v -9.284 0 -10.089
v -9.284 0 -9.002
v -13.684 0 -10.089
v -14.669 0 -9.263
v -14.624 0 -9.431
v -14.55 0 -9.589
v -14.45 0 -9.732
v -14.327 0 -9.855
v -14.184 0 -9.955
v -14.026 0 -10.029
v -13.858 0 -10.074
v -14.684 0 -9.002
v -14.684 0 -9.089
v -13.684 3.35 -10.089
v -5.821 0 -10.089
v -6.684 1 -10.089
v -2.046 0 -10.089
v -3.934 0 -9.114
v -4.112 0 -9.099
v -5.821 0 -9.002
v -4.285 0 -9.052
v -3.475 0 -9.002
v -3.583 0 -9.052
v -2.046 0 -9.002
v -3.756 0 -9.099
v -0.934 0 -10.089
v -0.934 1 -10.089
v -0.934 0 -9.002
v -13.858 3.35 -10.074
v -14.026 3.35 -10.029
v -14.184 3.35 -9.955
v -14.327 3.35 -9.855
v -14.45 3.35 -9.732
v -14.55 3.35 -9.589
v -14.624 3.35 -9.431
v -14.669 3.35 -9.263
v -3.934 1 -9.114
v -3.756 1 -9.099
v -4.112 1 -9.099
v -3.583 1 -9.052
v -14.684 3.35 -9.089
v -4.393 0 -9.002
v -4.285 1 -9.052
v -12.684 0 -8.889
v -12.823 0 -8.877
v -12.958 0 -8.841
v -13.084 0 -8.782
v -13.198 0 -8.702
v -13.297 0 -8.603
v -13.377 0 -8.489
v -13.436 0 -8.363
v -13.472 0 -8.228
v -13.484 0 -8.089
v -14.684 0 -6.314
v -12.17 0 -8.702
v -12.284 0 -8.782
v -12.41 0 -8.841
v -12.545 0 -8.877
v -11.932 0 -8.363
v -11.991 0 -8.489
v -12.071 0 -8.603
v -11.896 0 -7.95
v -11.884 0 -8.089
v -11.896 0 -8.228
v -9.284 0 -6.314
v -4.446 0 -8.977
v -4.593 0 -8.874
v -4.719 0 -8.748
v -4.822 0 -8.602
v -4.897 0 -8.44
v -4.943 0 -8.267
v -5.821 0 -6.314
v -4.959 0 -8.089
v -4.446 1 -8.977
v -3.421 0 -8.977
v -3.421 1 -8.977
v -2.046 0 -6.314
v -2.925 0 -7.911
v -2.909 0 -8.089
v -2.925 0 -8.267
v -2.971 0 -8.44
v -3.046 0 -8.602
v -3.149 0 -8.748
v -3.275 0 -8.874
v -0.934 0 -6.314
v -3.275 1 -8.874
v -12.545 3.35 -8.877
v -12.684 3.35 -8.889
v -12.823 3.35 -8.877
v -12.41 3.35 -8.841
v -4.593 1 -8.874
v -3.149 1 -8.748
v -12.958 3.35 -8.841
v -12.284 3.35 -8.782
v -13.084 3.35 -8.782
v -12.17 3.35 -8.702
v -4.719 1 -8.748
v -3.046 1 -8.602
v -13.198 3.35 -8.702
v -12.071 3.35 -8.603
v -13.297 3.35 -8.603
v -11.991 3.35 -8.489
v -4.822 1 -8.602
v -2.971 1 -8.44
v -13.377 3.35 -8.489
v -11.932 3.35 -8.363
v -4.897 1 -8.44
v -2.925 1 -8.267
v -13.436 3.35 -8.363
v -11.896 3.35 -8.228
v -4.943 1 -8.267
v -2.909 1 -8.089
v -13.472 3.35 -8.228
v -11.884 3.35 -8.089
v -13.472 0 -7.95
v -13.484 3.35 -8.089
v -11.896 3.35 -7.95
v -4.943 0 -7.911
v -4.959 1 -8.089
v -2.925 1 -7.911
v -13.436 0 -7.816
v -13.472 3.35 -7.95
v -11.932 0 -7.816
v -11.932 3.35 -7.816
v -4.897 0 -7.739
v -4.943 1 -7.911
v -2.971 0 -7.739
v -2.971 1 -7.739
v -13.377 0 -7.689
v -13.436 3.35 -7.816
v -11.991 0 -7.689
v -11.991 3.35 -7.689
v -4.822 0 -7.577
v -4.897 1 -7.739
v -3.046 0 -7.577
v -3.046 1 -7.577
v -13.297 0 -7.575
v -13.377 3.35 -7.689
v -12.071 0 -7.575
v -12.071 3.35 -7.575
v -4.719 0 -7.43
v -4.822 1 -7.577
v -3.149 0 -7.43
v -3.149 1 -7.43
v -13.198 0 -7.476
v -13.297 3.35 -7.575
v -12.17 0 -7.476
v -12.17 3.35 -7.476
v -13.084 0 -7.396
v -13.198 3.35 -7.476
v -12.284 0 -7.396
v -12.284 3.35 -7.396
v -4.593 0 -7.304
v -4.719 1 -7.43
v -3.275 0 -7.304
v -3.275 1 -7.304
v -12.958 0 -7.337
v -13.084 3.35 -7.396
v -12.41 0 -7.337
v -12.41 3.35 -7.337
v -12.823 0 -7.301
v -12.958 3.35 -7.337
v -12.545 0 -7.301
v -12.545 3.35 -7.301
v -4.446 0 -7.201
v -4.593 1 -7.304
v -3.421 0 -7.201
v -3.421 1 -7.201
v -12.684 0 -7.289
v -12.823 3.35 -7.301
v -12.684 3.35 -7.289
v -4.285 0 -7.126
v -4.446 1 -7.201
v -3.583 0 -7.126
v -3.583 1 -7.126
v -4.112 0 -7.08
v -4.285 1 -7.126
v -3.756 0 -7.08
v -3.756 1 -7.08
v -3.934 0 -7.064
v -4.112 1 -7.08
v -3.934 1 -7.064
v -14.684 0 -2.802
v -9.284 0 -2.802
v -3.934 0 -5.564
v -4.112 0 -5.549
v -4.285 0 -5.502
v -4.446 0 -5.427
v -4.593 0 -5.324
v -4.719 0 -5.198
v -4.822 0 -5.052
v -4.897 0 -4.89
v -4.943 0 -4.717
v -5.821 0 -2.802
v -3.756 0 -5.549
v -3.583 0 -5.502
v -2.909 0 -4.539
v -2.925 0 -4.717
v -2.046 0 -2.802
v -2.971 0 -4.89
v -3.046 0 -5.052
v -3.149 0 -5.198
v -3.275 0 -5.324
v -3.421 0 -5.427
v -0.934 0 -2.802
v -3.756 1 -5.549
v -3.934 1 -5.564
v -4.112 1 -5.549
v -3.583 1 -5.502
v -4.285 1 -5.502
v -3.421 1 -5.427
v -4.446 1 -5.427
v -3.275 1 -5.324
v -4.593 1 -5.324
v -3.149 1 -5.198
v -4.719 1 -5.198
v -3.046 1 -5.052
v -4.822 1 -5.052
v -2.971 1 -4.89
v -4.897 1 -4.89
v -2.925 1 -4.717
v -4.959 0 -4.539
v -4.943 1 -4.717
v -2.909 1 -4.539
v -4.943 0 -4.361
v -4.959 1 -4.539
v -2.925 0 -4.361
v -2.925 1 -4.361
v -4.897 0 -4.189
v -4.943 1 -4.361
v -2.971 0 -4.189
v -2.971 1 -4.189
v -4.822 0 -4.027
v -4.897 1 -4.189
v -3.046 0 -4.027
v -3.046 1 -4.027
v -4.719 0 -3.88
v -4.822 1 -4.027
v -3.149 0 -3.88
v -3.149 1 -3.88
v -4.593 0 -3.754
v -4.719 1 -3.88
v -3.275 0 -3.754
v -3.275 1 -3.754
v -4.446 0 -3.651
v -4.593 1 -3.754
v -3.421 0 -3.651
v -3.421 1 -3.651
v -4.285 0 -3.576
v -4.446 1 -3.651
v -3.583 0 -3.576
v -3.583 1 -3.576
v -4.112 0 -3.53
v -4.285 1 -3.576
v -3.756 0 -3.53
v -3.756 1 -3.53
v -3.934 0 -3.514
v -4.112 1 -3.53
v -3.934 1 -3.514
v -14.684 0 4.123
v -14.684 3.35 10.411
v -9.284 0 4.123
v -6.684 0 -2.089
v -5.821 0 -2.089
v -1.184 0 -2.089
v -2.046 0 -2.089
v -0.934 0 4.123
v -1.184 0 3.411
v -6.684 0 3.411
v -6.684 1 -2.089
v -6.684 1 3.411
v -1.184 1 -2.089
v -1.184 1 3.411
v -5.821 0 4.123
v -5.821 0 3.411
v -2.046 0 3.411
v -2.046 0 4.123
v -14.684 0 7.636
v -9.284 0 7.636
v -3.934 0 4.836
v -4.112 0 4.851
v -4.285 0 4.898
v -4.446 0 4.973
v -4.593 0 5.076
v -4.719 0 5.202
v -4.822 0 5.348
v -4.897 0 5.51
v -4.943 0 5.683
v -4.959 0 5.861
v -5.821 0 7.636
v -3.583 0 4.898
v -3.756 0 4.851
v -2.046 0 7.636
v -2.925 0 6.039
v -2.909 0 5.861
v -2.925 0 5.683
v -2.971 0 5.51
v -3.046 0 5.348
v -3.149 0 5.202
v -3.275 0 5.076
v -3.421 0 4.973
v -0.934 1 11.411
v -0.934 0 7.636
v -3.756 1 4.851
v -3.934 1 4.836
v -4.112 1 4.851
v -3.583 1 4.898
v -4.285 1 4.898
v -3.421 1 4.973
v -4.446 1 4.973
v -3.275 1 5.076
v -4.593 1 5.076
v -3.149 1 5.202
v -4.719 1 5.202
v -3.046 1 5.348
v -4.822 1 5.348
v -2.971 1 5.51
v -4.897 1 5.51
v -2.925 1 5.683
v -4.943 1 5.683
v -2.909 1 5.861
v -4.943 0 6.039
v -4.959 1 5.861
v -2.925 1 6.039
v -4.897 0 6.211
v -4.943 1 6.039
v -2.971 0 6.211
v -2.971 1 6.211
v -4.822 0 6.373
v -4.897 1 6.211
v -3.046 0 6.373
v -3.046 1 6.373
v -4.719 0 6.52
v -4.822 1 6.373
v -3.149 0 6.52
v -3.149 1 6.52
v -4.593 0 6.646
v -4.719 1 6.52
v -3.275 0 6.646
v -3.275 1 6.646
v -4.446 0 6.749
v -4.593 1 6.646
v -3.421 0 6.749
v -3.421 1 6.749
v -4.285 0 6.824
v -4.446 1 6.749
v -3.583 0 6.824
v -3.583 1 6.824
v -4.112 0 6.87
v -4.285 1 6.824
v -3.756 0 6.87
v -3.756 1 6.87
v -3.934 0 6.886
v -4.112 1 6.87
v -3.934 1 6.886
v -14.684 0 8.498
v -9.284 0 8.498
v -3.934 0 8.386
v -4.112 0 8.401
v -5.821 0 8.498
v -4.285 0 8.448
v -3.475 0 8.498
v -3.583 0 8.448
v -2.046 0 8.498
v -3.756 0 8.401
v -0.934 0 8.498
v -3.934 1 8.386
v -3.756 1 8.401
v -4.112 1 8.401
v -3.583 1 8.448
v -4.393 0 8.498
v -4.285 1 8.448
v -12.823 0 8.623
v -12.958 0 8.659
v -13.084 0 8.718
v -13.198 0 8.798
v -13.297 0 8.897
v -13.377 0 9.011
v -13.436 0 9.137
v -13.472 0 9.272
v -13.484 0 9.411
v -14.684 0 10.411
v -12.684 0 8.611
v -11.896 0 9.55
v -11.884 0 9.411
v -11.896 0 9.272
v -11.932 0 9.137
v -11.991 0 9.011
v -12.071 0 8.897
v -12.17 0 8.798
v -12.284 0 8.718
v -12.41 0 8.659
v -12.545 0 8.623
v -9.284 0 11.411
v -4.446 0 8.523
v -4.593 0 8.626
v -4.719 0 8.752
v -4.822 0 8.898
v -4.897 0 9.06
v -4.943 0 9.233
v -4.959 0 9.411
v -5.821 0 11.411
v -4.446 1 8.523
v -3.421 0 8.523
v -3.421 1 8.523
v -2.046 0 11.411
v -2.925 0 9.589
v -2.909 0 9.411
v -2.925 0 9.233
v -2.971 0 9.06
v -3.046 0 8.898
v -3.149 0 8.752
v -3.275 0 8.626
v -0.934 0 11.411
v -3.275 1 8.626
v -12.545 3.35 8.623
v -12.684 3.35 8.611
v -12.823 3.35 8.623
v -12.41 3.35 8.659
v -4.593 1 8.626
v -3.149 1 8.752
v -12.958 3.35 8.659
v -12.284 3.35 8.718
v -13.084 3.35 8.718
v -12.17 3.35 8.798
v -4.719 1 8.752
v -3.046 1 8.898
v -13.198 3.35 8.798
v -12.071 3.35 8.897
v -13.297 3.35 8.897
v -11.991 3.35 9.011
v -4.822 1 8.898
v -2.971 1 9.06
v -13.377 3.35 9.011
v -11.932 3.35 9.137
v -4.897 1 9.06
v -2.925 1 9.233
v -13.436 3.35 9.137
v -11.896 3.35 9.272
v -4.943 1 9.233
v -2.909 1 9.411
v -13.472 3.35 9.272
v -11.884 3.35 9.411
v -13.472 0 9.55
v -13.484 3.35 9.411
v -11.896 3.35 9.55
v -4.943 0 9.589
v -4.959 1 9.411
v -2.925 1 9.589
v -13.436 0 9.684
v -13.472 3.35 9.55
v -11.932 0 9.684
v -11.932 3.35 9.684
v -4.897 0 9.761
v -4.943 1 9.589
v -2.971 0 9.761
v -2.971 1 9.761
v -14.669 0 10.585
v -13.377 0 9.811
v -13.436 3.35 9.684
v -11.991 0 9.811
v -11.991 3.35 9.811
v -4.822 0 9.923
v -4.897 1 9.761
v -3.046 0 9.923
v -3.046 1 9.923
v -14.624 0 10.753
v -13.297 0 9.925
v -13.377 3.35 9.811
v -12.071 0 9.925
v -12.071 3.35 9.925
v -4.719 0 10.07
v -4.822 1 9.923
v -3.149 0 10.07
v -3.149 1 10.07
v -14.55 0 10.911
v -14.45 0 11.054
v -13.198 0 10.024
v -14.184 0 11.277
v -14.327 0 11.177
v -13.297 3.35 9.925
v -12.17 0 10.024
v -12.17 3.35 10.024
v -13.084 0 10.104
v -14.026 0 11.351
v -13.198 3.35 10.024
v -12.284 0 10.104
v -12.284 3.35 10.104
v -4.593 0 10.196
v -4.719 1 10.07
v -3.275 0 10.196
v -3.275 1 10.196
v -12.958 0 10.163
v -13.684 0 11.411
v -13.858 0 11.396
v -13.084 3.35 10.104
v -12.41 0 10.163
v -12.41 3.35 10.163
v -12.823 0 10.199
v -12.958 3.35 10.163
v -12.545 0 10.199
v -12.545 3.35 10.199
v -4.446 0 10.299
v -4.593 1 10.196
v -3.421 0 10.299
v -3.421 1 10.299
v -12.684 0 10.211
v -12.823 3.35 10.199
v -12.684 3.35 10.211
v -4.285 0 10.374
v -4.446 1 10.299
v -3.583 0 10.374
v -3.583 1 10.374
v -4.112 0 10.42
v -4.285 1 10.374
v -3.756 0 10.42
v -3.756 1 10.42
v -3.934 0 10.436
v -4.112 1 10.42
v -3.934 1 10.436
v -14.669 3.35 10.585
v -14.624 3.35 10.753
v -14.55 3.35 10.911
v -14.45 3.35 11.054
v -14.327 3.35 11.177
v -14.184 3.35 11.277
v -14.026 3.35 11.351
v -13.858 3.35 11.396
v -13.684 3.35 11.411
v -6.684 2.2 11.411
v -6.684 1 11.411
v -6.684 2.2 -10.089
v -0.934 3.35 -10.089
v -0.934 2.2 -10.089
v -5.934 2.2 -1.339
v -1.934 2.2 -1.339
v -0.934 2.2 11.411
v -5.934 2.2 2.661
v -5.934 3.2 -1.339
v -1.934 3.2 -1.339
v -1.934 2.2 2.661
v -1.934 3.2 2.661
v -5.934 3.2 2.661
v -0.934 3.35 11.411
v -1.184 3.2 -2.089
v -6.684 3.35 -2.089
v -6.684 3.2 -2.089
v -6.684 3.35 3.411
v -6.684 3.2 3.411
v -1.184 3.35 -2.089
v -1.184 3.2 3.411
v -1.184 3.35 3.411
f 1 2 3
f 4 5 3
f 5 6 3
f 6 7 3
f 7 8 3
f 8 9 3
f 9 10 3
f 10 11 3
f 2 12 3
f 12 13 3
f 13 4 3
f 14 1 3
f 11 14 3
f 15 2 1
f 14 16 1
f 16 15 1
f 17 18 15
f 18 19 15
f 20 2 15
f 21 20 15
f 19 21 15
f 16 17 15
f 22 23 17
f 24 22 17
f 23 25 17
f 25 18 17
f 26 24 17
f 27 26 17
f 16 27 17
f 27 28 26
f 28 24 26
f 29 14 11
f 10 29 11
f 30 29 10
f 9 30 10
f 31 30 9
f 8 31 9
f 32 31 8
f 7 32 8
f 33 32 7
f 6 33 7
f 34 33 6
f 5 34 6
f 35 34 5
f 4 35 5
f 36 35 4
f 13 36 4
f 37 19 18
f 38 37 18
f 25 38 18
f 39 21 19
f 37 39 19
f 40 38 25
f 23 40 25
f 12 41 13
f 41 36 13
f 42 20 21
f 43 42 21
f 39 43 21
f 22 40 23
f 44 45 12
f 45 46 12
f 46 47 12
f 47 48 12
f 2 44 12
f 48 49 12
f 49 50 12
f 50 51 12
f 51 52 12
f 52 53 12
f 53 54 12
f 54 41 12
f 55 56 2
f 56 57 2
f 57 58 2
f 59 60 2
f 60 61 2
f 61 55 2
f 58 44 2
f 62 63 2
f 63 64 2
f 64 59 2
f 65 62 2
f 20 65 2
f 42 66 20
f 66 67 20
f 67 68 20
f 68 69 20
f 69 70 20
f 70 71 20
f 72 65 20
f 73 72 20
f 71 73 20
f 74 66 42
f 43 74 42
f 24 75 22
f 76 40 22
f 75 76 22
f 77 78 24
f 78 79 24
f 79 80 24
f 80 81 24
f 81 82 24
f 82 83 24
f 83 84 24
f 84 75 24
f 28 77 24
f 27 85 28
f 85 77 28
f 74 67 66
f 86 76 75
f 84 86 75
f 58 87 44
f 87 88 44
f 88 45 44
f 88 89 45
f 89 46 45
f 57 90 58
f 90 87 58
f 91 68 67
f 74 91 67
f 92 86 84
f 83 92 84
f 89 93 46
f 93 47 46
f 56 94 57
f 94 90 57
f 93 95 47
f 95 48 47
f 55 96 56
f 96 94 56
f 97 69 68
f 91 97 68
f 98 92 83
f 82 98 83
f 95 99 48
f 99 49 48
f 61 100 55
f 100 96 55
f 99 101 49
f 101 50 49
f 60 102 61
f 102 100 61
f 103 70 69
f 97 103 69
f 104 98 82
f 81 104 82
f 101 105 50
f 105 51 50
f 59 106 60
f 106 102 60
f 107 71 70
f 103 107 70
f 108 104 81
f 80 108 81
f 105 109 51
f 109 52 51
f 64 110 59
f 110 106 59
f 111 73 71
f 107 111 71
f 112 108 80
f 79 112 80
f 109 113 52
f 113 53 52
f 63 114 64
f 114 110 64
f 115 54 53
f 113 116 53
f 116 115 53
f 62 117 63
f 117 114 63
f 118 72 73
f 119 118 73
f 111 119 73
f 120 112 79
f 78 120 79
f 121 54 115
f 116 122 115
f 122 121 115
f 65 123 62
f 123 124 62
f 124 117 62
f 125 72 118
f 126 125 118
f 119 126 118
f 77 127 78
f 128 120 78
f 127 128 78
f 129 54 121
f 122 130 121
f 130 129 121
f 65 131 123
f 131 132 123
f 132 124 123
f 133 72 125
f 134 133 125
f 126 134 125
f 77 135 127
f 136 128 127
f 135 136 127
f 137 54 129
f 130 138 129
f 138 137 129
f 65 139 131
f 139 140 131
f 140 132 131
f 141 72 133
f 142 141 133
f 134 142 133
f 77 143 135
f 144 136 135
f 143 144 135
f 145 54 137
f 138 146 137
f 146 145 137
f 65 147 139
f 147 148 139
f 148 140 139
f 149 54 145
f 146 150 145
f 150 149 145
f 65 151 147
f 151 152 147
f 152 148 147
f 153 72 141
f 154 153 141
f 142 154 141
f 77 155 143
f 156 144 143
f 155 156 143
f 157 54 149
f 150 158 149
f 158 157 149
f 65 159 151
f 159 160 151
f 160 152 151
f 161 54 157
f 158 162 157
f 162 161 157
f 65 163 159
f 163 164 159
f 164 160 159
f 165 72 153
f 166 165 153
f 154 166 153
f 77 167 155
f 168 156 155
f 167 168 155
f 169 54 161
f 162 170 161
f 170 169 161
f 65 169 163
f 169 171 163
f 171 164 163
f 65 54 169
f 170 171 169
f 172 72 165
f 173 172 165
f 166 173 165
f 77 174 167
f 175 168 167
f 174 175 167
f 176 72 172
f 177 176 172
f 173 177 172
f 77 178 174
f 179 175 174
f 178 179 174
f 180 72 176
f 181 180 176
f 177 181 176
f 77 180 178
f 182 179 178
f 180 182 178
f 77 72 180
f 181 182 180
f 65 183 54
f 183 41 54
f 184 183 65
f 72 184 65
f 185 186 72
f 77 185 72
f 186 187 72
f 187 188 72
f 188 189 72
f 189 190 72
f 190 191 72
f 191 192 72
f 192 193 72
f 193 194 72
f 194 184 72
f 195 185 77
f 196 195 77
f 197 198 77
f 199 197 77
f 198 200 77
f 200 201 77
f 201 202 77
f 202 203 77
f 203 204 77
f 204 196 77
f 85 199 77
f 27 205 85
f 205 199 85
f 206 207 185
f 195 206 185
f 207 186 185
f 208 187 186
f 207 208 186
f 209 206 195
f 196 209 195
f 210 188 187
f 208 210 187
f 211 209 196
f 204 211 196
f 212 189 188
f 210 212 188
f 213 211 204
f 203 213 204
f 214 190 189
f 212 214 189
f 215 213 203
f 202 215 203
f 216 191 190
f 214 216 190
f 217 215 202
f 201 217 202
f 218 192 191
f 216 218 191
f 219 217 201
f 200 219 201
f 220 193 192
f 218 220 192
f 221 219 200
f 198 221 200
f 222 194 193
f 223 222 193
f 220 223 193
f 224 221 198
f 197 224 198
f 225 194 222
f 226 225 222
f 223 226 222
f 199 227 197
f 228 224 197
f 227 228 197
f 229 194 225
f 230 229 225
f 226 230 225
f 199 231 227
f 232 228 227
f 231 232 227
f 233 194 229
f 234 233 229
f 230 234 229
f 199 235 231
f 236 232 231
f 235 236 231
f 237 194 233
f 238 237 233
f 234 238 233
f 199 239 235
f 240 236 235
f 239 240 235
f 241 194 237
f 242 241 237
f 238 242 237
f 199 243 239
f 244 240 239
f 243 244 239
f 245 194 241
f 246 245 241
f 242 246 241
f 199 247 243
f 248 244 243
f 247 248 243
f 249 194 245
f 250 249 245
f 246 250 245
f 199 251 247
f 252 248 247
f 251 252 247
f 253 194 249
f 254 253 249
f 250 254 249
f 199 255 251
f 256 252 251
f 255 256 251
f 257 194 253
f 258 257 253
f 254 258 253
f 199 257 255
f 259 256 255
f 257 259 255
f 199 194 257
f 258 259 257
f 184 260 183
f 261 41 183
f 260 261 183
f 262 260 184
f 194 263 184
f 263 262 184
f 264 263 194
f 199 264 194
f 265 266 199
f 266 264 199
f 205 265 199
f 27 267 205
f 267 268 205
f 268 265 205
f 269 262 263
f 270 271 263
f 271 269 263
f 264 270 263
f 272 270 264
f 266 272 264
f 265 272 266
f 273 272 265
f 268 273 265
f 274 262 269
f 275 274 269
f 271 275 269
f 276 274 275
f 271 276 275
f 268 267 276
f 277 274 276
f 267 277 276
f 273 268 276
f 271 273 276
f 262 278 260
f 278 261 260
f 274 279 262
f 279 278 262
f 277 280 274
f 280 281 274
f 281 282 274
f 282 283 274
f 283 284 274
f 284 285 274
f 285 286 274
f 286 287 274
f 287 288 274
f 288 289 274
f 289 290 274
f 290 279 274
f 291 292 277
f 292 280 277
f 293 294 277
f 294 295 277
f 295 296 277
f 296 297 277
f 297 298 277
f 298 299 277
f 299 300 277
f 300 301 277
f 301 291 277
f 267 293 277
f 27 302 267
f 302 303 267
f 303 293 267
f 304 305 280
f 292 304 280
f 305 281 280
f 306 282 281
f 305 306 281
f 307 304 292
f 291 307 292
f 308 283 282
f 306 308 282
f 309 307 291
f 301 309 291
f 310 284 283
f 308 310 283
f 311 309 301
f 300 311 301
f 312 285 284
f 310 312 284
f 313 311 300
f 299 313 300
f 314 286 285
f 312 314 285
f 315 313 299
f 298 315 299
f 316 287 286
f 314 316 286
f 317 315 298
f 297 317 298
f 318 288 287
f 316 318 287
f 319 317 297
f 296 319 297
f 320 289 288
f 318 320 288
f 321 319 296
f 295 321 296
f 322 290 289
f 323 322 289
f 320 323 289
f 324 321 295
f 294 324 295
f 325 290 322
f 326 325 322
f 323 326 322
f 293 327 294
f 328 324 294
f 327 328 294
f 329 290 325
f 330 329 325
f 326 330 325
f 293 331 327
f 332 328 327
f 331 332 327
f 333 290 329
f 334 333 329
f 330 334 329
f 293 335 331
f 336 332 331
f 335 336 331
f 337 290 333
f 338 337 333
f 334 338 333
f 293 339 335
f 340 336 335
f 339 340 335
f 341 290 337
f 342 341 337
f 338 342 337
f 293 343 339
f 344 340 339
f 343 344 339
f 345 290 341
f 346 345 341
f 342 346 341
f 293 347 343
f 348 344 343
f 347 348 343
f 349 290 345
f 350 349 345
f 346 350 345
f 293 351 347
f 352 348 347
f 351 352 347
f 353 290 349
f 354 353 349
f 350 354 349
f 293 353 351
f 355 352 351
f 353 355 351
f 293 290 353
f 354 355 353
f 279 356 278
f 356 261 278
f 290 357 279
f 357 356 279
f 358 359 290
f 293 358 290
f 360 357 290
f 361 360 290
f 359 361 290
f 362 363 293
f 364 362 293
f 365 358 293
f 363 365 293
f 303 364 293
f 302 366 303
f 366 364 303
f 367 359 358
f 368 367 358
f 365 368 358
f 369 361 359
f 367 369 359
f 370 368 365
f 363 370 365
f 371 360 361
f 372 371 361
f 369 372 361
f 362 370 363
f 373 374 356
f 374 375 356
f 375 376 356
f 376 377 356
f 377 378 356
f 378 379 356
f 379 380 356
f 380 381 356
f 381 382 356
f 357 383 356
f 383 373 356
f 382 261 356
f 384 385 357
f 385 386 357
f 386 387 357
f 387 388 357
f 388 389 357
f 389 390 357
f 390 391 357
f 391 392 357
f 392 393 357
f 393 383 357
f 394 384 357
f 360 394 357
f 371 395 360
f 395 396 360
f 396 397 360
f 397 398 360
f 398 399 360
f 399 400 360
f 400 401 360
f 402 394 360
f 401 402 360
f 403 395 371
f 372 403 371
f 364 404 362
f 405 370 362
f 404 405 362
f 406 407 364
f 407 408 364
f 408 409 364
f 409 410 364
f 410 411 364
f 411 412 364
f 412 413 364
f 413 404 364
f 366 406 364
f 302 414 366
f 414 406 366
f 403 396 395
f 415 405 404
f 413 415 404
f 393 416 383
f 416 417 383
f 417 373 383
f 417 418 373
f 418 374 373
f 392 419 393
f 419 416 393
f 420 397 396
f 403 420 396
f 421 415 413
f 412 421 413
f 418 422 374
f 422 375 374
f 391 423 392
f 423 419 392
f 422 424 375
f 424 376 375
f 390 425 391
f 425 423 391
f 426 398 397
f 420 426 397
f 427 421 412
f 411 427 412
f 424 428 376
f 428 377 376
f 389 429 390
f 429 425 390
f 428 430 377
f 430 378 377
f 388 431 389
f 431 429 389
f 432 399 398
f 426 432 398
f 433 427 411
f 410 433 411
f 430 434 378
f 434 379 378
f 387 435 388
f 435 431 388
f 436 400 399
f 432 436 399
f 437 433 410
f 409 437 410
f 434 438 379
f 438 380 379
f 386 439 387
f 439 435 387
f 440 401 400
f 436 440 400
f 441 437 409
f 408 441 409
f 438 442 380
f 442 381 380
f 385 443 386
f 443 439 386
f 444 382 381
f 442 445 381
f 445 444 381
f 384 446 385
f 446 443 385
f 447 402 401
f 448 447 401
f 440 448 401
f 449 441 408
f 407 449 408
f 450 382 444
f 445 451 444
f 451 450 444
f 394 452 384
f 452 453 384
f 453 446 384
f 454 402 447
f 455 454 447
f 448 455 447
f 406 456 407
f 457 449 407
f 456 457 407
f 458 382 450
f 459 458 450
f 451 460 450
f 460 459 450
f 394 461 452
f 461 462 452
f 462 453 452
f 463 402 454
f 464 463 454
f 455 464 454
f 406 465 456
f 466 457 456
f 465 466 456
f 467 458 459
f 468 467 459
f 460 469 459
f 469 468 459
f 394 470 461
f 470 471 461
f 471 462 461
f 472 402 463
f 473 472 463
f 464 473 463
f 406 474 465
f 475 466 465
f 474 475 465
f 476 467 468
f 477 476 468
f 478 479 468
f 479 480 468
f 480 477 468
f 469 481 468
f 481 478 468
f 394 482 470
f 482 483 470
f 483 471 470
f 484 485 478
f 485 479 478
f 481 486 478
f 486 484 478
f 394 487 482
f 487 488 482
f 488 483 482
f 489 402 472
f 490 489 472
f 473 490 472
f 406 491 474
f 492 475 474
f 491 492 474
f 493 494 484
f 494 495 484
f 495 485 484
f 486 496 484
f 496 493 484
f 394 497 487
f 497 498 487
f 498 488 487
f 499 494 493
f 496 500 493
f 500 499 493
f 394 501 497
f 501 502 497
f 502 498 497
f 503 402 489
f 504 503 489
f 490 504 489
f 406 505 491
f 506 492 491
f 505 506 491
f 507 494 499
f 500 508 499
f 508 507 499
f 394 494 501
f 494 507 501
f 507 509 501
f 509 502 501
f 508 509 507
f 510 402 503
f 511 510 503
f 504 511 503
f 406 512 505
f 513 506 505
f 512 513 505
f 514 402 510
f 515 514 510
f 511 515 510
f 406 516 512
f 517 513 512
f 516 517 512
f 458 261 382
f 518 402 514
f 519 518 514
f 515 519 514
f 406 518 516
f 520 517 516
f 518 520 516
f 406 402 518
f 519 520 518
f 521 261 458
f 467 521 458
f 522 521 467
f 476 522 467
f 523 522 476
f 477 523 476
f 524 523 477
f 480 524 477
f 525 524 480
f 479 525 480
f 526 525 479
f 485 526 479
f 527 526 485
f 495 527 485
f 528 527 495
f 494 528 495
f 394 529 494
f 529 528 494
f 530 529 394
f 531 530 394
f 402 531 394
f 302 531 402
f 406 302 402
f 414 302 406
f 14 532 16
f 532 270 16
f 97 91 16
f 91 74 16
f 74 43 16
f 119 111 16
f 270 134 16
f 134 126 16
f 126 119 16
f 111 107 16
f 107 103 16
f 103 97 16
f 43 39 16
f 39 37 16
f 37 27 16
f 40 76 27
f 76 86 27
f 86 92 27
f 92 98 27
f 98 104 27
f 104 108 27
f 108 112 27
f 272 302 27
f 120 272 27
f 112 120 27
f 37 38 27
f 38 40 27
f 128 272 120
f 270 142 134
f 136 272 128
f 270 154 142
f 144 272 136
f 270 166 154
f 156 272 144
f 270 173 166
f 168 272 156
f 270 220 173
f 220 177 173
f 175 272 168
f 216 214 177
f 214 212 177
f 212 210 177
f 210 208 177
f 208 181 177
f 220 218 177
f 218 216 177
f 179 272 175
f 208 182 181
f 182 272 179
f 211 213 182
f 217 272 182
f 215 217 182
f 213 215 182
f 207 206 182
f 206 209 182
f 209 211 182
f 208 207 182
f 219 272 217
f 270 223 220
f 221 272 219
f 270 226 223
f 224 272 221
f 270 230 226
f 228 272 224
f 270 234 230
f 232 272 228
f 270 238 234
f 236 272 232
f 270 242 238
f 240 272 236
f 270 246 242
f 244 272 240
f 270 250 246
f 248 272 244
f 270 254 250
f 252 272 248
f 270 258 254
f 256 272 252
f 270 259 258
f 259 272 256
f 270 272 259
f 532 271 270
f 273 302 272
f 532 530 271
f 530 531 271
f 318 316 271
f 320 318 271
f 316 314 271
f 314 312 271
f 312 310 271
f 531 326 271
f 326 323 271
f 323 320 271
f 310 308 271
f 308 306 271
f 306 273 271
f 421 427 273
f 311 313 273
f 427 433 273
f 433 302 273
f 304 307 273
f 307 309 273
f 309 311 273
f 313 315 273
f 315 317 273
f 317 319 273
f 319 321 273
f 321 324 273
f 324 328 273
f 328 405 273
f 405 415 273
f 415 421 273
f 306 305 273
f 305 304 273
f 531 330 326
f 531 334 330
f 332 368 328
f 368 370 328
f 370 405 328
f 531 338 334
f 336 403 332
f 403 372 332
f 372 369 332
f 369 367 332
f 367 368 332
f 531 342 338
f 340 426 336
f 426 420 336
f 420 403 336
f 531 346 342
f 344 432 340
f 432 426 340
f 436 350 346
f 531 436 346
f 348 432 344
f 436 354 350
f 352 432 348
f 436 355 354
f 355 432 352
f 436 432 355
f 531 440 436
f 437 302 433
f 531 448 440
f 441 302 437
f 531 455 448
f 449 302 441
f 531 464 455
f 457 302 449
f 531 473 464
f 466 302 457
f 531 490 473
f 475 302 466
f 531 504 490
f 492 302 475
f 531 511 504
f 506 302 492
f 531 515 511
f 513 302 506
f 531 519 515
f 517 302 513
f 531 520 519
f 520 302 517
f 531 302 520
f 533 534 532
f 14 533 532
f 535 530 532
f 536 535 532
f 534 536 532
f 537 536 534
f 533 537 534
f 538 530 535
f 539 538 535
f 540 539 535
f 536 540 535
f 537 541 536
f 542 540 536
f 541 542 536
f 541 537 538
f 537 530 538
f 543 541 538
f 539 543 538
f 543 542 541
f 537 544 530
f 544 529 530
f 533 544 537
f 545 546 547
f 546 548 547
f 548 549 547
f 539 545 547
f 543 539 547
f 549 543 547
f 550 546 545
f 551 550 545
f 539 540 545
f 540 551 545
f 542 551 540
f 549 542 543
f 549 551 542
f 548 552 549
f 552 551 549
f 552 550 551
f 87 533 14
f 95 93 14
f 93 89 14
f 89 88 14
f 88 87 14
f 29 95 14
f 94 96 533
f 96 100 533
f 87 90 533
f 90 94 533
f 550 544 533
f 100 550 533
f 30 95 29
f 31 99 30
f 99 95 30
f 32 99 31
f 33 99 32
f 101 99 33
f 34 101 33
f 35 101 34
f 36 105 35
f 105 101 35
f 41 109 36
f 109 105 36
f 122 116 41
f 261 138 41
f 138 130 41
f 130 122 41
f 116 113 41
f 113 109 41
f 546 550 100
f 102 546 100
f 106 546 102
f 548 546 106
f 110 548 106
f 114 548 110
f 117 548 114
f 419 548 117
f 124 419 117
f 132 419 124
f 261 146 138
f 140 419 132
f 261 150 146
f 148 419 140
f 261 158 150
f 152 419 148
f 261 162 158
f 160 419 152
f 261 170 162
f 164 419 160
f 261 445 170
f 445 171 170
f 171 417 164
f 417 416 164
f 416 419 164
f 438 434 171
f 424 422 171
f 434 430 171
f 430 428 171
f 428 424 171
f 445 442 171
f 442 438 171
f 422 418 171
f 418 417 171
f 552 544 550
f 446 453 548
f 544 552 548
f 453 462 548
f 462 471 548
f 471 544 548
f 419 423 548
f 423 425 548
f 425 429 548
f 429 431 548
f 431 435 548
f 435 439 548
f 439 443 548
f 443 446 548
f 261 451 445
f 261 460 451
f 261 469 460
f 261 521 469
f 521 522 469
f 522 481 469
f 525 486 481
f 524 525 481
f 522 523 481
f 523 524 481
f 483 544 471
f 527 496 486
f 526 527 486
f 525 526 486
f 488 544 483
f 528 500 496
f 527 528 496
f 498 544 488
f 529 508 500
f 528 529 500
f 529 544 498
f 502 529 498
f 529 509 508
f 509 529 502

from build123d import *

# Parameters (mm, degrees)
SKETCH1_W                          = 21.5
SKETCH1_H                          = 21.5
BOSS_EXTRUDE1_DEPTH                = 3.2
SKETCH2_W                          = 5.5
SKETCH2_H                          = 1.2
CUT_EXTRUDE1_DEPTH                 = 27.231822721
SKETCH3_W                          = 21.5
SKETCH3_H                          = 21.5
SKETCH3_W_2                        = 5.5
SKETCH3_H_2                        = 5.5
BOSS_EXTRUDE2_DEPTH                = 0.15
SKETCH11_W                         = 4
SKETCH11_H                         = 4
CUT_EXTRUDE2_DEPTH                 = 19.869717175
TAP_DRILL_FOR_M2X0_4_TAP3_D        = 1.6
TAP_DRILL_FOR_M2_5X0_45_TAP1_D     = 2.05
TAP_DRILL_FOR_M2_5X0_45_TAP1_DEPTH = 1
CUT_EXTRUDE3_REACH                 = 20.896
SKETCH18_W                         = 5.5
SKETCH18_H                         = 5.5
FILLET3_R                          = 1
SKETCH21_W                         = 13.124555245
SKETCH21_H                         = 35.298127434
CUT_EXTRUDE8_DEPTH                 = 19.895733017
SKETCH22_W                         = 0.25
SKETCH22_H                         = 1.2
CUT_EXTRUDE9_DEPTH                 = 27.250543295


with BuildPart() as part:
    # Sketch1 → Boss-Extrude1 (new body)
    with BuildSketch(Plane(origin=(0, 0, 0), x_dir=(1, 0, 0), z_dir=(0, 1, 0))):
        with Locations((-3.933954619, -0.660858995)):
            Rectangle(SKETCH1_W, SKETCH1_H)
    extrude(amount=BOSS_EXTRUDE1_DEPTH)

    # Sketch2 → Cut-Extrude1 (cut, through all)
    with BuildSketch(Plane.XY.offset(11.410858995)):
        with Locations((-3.933954619, 1.6)):
            Rectangle(SKETCH2_W, SKETCH2_H)
    extrude(amount=-CUT_EXTRUDE1_DEPTH, mode=Mode.SUBTRACT)

    # Sketch3 → Boss-Extrude2 (add)
    with BuildSketch(Plane(origin=(0, 3.2, 0), x_dir=(1, 0, 0), z_dir=(0, 1, 0))):
        with Locations((-3.933954619, -0.660858995)):
            Rectangle(SKETCH3_W, SKETCH3_H)
        with Locations((-3.933954619, -0.660858995)):
            Rectangle(SKETCH3_W_2, SKETCH3_H_2, mode=Mode.SUBTRACT)
    extrude(amount=BOSS_EXTRUDE2_DEPTH)

    # Sketch11 → Cut-Extrude2 (cut, through all)
    with BuildSketch(Plane(origin=(0, 3.2, 0), x_dir=(1, 0, 0), z_dir=(0, 1, 0))):
        with Locations((-3.933954619, -0.660858995)):
            Rectangle(SKETCH11_W, SKETCH11_H)
    extrude(amount=-CUT_EXTRUDE2_DEPTH, mode=Mode.SUBTRACT)

    # Tap Drill for M2x0.4 Tap3 (through all)
    with Locations(Plane(origin=(0, 3.35, 0), x_dir=(1, 0, 0), z_dir=(0, 1, 0))):
        with Locations((-12.683954619, 8.089141005), (4.816045381, 8.089141005), (4.816045381, -9.410858995), (-12.683954619, -9.410858995)):
            Hole(TAP_DRILL_FOR_M2X0_4_TAP3_D / 2)

    # Tap Drill for M2.5x0.45 Tap1
    with Locations(Plane(origin=(0, 0, 0), x_dir=(-1, 0, 0), z_dir=(0, -1, 0))):
        with Locations((3.933954619, 8.089141005), (3.933954619, -9.410858995), (3.933954619, 4.539141005), (3.933954619, -5.860858995)):
            Hole(TAP_DRILL_FOR_M2_5X0_45_TAP1_D / 2, depth=TAP_DRILL_FOR_M2_5X0_45_TAP1_DEPTH)

    # Sketch18 → Cut-Extrude3 (cut, up to next)
    with BuildSketch(Plane.XZ, mode=Mode.PRIVATE) as cut_extrude3_sk1:
        with Locations((-3.933954619, 0.660858995)):
            Rectangle(SKETCH18_W, SKETCH18_H)
    cut_extrude3_tool1 = extrude(cut_extrude3_sk1.sketch, amount=-CUT_EXTRUDE3_REACH, mode=Mode.PRIVATE) & part.part
    add(cut_extrude3_tool1.solids().sort_by_distance((-3.933955, 0, 0.660859))[0], mode=Mode.SUBTRACT)

    # Fillet3
    fillet3_edges = [part.edges().sort_by_distance(p)[0] for p in [
        (-14.683954619, 1.675, -10.089141005),
        (6.816045381, 1.675, -10.089141005),
        (6.816045381, 1.675, 11.410858995),
        (-14.683954619, 1.675, 11.410858995),
    ]]
    fillet(fillet3_edges, radius=FILLET3_R)

    # Sketch21 → Cut-Extrude8 (cut, through all)
    with BuildSketch(Plane(origin=(0, 3.35, 0), x_dir=(1, 0, 0), z_dir=(0, 1, 0))):
        with Locations((5.628323004, -1.911462044)):
            Rectangle(SKETCH21_W, SKETCH21_H)
    extrude(amount=-CUT_EXTRUDE8_DEPTH, mode=Mode.SUBTRACT)

    # Sketch22 → Cut-Extrude9 (cut, through all)
    with BuildSketch(Plane(origin=(0, 0, -10.089141005), x_dir=(-1, 0, 0), z_dir=(0, 0, -1))):
        with Locations((1.058954619, 1.6)):
            Rectangle(SKETCH22_W, SKETCH22_H)
    extrude(amount=-CUT_EXTRUDE9_DEPTH, mode=Mode.SUBTRACT)


solid = part.part
